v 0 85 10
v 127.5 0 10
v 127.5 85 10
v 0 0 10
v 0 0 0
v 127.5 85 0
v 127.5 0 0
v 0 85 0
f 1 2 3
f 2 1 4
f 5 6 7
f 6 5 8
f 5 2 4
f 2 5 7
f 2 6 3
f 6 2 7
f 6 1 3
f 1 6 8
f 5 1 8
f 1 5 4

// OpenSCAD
// Black 96-well Microtiter Plate Lid
// loadName: black_96_well_microtiter_plate_lid
// Auto-generated by labware_to_stl.py from Opentrons V2 labware definition

$fn = 32;

difference() {
    // ── Labware body ──────────────────────────────────────────────
    cube([127.5000, 85.0000, 10.0000]);

    // ── Well cutouts ──────────────────────────────────────────────
}
